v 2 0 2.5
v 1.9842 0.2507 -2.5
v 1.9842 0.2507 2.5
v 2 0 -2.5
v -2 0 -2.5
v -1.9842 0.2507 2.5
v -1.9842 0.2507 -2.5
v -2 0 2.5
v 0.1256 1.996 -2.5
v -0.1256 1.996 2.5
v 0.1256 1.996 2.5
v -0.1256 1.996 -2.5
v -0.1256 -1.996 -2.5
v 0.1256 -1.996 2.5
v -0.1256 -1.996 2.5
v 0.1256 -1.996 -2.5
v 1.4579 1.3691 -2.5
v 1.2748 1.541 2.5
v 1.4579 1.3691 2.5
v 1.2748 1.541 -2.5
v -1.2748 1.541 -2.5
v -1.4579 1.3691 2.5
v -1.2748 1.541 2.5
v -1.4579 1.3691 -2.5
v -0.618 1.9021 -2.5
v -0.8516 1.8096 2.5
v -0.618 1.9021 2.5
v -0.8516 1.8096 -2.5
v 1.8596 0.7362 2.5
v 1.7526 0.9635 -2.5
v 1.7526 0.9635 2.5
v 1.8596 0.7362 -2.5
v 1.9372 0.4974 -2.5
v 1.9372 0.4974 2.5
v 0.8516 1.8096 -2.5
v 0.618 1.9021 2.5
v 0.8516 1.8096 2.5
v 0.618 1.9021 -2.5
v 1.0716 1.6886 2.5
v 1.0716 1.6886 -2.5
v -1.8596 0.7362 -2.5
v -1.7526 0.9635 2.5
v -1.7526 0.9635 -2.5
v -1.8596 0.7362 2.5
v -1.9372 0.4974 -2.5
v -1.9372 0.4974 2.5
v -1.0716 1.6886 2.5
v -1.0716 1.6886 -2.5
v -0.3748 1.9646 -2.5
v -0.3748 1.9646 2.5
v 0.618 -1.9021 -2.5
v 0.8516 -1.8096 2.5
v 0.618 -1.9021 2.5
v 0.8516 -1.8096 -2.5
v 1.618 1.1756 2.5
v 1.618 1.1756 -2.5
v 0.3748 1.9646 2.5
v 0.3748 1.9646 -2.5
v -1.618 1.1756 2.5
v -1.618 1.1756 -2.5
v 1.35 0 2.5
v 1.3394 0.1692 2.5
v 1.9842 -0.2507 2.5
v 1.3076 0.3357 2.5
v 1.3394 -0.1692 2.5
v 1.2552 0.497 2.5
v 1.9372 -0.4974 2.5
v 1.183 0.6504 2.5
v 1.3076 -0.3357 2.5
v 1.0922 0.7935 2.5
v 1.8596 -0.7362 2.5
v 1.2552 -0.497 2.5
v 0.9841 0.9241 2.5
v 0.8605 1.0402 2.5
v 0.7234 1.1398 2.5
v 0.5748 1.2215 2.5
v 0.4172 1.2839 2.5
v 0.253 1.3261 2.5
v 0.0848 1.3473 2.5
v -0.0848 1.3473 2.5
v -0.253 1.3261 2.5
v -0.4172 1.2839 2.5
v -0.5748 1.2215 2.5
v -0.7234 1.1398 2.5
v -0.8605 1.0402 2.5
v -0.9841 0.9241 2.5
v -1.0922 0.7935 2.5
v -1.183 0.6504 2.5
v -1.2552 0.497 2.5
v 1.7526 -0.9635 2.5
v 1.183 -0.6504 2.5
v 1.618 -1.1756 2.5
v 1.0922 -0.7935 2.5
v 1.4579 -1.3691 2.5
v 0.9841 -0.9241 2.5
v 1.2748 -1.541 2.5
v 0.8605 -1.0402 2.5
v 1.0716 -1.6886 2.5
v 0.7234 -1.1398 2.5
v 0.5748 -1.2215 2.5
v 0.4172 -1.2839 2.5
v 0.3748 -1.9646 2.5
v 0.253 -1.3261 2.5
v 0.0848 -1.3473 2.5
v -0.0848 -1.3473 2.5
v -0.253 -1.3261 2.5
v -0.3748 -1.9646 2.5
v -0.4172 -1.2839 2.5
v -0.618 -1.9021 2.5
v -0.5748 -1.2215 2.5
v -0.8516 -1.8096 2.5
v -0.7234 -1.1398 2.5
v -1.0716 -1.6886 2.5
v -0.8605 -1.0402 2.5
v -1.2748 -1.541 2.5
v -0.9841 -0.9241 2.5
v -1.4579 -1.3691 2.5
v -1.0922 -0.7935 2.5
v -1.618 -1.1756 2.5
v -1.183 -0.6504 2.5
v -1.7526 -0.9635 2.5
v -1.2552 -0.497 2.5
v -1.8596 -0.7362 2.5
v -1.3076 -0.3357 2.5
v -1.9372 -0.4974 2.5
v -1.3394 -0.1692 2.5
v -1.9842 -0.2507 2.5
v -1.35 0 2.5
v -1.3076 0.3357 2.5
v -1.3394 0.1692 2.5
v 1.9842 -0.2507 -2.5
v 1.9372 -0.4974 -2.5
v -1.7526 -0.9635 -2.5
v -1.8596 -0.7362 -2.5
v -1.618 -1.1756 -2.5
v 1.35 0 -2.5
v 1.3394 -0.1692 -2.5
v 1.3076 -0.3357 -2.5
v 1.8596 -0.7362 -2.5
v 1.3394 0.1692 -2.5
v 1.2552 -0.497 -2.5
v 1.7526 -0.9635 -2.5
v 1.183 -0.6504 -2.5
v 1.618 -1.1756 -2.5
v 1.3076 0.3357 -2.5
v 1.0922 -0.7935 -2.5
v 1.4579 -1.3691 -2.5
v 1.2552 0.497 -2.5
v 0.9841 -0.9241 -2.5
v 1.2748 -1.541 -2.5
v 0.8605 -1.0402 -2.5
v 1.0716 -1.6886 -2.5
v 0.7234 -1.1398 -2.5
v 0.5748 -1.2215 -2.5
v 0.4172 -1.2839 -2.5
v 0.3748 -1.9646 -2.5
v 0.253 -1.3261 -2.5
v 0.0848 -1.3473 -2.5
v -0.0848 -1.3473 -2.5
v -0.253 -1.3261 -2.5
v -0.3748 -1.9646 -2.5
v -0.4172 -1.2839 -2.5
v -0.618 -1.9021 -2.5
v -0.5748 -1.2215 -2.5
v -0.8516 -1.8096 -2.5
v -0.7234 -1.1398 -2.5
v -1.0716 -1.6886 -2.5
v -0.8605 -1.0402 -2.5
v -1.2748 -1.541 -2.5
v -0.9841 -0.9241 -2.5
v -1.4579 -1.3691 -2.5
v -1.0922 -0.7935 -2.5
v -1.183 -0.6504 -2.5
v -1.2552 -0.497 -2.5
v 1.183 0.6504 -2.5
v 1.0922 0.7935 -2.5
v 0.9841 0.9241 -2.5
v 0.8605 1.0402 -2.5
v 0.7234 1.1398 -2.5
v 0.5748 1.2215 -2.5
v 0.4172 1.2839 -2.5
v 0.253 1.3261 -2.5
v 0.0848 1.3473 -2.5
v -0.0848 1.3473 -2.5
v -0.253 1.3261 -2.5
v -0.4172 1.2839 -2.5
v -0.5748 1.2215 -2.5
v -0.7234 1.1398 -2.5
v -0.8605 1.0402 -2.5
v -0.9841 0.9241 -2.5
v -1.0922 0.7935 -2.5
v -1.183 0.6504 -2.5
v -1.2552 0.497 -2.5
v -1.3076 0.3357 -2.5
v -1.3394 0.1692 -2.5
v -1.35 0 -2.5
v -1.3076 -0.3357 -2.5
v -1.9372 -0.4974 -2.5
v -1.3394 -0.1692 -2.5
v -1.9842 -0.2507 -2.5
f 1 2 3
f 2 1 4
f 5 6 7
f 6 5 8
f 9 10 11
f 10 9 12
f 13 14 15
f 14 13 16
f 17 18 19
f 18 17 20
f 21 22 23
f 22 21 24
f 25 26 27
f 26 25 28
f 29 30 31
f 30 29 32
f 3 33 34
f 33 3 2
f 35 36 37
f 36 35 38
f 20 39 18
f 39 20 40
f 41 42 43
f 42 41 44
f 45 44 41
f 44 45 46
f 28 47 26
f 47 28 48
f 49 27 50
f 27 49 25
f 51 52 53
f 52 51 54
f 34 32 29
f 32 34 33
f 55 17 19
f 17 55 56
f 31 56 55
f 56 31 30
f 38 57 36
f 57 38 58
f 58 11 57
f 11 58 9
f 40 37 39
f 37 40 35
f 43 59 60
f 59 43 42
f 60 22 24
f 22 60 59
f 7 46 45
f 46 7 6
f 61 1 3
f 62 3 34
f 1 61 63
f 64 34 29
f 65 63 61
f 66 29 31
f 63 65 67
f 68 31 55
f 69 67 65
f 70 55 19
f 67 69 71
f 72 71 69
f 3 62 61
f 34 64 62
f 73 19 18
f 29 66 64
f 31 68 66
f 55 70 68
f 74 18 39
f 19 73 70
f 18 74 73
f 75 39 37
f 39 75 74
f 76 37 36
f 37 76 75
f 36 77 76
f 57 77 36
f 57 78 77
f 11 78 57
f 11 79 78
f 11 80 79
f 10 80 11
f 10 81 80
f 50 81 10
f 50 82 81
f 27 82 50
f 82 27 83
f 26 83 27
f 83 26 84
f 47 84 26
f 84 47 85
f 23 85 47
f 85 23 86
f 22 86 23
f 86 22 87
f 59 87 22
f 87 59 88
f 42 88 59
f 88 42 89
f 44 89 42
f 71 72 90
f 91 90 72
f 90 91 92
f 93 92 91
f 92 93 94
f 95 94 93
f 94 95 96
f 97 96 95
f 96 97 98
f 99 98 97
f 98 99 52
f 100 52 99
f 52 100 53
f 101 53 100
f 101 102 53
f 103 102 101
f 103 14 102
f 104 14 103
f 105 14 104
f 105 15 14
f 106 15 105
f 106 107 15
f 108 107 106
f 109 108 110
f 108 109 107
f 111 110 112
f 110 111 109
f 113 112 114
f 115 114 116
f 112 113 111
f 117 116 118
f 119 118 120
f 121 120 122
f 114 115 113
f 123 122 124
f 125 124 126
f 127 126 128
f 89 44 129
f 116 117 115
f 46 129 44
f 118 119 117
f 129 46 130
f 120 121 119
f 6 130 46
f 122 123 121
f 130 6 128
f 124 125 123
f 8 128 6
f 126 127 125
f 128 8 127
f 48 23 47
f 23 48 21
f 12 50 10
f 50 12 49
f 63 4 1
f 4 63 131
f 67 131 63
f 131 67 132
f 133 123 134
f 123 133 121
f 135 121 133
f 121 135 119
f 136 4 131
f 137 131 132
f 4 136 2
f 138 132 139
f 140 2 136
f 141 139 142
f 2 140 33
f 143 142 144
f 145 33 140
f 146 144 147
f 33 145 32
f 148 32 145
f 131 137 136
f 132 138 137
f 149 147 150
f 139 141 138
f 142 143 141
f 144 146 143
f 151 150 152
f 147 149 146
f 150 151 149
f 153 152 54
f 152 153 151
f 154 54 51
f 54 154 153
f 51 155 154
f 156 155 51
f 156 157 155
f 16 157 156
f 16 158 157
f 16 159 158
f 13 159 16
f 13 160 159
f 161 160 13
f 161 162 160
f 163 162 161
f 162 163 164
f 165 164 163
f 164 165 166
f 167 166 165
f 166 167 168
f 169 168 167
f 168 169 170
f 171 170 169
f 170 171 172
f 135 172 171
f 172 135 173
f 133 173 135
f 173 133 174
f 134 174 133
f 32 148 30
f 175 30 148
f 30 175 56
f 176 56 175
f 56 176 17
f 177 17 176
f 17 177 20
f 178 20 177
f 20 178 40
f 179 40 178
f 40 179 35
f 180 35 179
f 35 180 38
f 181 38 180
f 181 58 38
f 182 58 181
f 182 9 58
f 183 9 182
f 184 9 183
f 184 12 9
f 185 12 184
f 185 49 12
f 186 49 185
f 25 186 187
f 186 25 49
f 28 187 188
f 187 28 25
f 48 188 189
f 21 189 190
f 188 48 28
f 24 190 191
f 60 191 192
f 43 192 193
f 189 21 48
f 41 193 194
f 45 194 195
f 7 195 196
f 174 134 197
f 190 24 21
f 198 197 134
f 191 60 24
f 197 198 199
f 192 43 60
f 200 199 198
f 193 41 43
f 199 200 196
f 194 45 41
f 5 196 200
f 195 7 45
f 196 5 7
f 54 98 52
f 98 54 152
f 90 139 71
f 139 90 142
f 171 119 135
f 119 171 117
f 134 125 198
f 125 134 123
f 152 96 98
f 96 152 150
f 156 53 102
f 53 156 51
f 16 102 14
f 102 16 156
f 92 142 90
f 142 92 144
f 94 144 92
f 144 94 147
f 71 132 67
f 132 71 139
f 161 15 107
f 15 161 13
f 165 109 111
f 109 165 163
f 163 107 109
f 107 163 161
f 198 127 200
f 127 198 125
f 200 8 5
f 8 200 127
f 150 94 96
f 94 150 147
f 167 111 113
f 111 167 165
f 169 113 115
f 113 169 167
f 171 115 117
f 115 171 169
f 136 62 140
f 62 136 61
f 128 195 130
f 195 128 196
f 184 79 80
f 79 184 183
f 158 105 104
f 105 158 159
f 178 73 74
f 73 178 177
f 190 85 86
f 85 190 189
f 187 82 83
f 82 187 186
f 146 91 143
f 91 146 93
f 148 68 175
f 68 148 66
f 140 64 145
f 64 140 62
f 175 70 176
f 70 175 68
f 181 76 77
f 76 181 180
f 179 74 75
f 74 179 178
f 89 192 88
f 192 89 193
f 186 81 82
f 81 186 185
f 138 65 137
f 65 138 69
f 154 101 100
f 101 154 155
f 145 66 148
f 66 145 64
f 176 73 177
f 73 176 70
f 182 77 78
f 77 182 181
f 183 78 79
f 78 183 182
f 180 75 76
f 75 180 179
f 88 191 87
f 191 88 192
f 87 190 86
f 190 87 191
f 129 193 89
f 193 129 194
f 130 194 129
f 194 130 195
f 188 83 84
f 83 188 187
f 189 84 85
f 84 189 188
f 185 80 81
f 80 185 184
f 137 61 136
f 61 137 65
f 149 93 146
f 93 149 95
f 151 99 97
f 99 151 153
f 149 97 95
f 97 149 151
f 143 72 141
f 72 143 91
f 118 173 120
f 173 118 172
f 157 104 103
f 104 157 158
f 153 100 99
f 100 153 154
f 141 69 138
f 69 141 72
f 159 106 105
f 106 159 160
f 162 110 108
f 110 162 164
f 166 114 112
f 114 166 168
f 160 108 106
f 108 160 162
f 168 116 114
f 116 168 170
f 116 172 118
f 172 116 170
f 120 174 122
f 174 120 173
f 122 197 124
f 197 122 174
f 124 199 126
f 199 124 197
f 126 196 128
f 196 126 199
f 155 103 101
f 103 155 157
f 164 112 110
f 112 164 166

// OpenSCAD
$fn = 50;


difference() {
	union() {
		translate(v = [0, 0, -2.5000000000]) {
			cylinder(h = 5, r = 2.0000000000);
		}
	}
	union() {
		translate(v = [0, 0, -100.0000000000]) {
			cylinder(h = 200, r = 1.3500000000);
		}
	}
}
